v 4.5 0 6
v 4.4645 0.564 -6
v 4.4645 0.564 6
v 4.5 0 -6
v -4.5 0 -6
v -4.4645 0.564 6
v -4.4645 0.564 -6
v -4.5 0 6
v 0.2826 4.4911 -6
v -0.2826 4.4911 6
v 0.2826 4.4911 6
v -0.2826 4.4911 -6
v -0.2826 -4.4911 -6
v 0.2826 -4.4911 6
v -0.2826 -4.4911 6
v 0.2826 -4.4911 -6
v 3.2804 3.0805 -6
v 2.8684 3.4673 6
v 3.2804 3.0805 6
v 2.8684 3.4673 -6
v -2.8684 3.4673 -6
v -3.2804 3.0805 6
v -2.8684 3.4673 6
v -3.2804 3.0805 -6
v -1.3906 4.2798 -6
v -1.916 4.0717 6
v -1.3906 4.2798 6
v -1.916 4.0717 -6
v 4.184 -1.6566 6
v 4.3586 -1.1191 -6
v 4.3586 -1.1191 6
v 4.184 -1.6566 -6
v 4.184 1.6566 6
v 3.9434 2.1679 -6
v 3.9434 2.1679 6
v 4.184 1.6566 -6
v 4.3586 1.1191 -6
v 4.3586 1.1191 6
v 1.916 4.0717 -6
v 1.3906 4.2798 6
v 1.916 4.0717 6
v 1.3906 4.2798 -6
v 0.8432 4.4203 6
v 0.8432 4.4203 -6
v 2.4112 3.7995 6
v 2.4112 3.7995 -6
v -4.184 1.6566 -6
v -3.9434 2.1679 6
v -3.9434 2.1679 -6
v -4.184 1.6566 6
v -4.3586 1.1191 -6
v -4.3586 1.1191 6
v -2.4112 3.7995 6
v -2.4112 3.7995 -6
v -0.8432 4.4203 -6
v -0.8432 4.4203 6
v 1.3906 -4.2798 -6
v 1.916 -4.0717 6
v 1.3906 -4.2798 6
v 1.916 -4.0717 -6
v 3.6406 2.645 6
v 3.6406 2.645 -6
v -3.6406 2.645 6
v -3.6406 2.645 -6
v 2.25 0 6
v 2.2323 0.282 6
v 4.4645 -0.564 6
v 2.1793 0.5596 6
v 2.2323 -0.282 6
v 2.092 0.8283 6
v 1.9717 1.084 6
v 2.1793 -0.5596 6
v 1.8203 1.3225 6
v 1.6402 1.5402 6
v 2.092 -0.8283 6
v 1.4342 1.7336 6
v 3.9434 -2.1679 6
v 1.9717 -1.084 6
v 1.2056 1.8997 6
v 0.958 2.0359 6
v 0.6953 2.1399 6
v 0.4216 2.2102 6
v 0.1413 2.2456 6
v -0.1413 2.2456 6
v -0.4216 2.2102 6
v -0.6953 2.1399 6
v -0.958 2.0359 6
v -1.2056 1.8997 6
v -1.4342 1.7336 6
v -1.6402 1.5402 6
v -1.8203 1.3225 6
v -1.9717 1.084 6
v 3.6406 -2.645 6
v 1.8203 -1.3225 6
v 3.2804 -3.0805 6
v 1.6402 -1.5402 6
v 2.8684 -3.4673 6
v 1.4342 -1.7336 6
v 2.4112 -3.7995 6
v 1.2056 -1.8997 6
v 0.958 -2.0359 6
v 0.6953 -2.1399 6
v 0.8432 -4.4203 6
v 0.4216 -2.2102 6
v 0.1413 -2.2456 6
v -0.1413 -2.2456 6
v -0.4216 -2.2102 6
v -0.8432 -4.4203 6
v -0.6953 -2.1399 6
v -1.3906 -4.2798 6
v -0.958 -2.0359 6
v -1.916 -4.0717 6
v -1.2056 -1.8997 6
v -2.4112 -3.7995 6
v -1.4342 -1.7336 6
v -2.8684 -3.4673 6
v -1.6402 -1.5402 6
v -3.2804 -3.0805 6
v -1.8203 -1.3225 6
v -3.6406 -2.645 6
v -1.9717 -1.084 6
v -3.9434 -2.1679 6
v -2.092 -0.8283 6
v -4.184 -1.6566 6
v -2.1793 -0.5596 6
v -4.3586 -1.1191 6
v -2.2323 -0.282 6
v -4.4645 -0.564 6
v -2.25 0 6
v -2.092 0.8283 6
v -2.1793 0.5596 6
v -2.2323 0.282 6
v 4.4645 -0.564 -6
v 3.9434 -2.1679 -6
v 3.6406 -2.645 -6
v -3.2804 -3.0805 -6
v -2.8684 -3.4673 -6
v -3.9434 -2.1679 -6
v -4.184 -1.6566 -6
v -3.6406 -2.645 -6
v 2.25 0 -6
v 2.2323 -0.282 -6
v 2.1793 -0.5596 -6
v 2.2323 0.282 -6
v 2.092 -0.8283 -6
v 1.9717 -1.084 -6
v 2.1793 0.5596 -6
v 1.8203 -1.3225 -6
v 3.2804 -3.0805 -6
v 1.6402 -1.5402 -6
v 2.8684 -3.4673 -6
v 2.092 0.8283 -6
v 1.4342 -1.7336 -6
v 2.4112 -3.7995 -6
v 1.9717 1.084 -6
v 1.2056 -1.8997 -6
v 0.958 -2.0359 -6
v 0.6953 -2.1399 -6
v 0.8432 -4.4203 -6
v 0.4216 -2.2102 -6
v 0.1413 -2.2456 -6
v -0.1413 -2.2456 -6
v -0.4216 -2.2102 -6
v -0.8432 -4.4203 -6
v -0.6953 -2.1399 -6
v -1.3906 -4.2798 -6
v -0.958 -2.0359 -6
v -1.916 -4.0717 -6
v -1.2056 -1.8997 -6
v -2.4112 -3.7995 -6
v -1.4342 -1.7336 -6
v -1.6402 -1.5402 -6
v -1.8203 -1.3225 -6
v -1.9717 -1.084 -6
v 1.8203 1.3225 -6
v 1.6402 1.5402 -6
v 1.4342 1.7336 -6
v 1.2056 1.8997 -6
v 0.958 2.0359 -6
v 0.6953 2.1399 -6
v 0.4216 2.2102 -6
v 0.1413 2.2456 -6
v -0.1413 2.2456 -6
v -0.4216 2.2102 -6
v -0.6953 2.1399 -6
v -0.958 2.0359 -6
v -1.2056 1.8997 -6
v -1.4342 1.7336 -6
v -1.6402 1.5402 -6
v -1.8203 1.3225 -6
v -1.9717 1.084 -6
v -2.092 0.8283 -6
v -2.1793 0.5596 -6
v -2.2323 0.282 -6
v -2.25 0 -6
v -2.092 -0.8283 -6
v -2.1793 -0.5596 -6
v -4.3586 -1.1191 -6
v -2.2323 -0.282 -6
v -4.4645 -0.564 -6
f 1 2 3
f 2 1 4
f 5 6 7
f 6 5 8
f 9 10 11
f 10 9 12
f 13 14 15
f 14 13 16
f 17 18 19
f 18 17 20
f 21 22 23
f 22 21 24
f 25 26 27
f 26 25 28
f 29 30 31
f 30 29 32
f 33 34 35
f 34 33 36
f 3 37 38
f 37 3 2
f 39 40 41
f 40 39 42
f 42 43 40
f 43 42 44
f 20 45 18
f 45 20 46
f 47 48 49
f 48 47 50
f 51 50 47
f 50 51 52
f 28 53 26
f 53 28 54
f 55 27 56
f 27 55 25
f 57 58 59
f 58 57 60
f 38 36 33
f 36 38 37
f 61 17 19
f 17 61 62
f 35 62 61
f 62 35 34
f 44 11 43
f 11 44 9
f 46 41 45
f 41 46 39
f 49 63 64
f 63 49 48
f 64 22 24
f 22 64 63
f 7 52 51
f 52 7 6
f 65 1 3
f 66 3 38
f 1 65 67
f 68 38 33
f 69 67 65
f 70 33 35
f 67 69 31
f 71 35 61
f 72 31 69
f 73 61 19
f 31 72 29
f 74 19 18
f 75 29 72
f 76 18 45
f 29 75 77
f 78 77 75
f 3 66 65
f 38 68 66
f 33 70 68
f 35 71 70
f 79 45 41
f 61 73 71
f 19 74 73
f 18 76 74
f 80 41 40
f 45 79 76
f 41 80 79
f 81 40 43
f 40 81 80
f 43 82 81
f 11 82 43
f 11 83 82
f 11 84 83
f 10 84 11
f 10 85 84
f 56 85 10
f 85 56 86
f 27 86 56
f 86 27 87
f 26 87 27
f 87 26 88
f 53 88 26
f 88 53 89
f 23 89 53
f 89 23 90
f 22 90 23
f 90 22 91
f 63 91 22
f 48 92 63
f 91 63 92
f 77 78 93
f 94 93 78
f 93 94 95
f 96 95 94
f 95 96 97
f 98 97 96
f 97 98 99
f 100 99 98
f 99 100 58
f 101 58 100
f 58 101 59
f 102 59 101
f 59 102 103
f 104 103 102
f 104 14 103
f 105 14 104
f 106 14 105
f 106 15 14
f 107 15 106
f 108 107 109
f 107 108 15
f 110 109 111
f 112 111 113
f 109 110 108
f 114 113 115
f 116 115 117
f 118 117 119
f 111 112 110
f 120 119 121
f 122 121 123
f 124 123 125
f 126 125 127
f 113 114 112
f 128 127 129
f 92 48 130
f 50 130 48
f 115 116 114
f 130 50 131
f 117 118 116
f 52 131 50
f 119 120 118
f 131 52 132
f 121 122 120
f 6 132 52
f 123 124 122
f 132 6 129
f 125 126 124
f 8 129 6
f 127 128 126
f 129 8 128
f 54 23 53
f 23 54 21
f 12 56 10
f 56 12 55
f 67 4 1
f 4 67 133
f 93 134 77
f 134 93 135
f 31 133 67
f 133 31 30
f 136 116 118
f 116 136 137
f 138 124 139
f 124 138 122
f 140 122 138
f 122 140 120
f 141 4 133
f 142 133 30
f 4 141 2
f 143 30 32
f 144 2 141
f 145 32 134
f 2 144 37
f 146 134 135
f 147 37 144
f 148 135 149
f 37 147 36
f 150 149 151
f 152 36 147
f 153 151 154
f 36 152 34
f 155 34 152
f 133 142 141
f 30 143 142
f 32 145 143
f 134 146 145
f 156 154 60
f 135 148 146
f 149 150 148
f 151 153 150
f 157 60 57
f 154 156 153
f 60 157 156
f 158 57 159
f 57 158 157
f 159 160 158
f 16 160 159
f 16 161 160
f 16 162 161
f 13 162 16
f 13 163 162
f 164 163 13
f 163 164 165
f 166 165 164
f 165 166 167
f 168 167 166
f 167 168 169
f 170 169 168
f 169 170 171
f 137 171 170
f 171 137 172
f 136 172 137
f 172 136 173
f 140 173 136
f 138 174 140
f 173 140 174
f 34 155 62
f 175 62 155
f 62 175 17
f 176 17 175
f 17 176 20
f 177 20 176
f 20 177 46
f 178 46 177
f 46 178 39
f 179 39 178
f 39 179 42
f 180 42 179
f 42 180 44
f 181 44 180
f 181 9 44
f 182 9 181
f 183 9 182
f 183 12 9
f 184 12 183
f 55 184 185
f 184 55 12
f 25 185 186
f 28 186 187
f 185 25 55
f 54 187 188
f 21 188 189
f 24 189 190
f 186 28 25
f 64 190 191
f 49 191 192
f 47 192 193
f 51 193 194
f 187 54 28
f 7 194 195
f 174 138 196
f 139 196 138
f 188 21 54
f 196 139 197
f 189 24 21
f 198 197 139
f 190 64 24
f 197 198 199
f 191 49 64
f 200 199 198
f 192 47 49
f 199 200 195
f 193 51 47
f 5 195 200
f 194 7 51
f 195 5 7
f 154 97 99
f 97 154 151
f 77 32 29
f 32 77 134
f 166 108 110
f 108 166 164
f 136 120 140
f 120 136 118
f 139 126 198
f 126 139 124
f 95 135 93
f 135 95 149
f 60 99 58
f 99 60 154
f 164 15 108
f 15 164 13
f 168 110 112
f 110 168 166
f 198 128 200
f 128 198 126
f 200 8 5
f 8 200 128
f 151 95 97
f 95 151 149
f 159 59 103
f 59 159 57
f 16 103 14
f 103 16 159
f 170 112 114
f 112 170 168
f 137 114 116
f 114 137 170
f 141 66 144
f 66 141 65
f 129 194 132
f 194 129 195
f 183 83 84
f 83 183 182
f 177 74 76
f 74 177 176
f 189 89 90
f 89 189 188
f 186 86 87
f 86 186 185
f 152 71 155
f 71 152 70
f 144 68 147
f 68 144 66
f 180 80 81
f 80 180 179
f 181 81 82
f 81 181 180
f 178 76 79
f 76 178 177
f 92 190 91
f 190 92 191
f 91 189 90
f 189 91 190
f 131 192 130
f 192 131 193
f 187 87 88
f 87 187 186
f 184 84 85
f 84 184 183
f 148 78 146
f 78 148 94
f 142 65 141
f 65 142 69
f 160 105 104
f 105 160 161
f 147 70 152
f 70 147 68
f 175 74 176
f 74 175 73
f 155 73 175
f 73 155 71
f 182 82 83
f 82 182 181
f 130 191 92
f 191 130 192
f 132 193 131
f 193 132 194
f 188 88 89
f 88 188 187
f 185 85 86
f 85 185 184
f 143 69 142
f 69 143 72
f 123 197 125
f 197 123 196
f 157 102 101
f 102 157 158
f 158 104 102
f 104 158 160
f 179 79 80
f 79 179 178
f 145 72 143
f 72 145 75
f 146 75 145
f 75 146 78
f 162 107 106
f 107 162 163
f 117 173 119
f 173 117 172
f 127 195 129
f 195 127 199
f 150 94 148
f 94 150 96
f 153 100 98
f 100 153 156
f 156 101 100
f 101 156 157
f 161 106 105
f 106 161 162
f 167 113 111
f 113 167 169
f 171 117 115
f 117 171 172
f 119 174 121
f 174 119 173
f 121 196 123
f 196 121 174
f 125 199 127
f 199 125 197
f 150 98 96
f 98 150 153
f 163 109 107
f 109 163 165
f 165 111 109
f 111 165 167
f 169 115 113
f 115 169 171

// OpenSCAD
$fn = 50;


difference() {
	union() {
		translate(v = [0, 0, -6.0000000000]) {
			cylinder(h = 12, r = 4.5000000000);
		}
	}
	union() {
		translate(v = [0, 0, -100.0000000000]) {
			cylinder(h = 200, r = 2.2500000000);
		}
	}
}
